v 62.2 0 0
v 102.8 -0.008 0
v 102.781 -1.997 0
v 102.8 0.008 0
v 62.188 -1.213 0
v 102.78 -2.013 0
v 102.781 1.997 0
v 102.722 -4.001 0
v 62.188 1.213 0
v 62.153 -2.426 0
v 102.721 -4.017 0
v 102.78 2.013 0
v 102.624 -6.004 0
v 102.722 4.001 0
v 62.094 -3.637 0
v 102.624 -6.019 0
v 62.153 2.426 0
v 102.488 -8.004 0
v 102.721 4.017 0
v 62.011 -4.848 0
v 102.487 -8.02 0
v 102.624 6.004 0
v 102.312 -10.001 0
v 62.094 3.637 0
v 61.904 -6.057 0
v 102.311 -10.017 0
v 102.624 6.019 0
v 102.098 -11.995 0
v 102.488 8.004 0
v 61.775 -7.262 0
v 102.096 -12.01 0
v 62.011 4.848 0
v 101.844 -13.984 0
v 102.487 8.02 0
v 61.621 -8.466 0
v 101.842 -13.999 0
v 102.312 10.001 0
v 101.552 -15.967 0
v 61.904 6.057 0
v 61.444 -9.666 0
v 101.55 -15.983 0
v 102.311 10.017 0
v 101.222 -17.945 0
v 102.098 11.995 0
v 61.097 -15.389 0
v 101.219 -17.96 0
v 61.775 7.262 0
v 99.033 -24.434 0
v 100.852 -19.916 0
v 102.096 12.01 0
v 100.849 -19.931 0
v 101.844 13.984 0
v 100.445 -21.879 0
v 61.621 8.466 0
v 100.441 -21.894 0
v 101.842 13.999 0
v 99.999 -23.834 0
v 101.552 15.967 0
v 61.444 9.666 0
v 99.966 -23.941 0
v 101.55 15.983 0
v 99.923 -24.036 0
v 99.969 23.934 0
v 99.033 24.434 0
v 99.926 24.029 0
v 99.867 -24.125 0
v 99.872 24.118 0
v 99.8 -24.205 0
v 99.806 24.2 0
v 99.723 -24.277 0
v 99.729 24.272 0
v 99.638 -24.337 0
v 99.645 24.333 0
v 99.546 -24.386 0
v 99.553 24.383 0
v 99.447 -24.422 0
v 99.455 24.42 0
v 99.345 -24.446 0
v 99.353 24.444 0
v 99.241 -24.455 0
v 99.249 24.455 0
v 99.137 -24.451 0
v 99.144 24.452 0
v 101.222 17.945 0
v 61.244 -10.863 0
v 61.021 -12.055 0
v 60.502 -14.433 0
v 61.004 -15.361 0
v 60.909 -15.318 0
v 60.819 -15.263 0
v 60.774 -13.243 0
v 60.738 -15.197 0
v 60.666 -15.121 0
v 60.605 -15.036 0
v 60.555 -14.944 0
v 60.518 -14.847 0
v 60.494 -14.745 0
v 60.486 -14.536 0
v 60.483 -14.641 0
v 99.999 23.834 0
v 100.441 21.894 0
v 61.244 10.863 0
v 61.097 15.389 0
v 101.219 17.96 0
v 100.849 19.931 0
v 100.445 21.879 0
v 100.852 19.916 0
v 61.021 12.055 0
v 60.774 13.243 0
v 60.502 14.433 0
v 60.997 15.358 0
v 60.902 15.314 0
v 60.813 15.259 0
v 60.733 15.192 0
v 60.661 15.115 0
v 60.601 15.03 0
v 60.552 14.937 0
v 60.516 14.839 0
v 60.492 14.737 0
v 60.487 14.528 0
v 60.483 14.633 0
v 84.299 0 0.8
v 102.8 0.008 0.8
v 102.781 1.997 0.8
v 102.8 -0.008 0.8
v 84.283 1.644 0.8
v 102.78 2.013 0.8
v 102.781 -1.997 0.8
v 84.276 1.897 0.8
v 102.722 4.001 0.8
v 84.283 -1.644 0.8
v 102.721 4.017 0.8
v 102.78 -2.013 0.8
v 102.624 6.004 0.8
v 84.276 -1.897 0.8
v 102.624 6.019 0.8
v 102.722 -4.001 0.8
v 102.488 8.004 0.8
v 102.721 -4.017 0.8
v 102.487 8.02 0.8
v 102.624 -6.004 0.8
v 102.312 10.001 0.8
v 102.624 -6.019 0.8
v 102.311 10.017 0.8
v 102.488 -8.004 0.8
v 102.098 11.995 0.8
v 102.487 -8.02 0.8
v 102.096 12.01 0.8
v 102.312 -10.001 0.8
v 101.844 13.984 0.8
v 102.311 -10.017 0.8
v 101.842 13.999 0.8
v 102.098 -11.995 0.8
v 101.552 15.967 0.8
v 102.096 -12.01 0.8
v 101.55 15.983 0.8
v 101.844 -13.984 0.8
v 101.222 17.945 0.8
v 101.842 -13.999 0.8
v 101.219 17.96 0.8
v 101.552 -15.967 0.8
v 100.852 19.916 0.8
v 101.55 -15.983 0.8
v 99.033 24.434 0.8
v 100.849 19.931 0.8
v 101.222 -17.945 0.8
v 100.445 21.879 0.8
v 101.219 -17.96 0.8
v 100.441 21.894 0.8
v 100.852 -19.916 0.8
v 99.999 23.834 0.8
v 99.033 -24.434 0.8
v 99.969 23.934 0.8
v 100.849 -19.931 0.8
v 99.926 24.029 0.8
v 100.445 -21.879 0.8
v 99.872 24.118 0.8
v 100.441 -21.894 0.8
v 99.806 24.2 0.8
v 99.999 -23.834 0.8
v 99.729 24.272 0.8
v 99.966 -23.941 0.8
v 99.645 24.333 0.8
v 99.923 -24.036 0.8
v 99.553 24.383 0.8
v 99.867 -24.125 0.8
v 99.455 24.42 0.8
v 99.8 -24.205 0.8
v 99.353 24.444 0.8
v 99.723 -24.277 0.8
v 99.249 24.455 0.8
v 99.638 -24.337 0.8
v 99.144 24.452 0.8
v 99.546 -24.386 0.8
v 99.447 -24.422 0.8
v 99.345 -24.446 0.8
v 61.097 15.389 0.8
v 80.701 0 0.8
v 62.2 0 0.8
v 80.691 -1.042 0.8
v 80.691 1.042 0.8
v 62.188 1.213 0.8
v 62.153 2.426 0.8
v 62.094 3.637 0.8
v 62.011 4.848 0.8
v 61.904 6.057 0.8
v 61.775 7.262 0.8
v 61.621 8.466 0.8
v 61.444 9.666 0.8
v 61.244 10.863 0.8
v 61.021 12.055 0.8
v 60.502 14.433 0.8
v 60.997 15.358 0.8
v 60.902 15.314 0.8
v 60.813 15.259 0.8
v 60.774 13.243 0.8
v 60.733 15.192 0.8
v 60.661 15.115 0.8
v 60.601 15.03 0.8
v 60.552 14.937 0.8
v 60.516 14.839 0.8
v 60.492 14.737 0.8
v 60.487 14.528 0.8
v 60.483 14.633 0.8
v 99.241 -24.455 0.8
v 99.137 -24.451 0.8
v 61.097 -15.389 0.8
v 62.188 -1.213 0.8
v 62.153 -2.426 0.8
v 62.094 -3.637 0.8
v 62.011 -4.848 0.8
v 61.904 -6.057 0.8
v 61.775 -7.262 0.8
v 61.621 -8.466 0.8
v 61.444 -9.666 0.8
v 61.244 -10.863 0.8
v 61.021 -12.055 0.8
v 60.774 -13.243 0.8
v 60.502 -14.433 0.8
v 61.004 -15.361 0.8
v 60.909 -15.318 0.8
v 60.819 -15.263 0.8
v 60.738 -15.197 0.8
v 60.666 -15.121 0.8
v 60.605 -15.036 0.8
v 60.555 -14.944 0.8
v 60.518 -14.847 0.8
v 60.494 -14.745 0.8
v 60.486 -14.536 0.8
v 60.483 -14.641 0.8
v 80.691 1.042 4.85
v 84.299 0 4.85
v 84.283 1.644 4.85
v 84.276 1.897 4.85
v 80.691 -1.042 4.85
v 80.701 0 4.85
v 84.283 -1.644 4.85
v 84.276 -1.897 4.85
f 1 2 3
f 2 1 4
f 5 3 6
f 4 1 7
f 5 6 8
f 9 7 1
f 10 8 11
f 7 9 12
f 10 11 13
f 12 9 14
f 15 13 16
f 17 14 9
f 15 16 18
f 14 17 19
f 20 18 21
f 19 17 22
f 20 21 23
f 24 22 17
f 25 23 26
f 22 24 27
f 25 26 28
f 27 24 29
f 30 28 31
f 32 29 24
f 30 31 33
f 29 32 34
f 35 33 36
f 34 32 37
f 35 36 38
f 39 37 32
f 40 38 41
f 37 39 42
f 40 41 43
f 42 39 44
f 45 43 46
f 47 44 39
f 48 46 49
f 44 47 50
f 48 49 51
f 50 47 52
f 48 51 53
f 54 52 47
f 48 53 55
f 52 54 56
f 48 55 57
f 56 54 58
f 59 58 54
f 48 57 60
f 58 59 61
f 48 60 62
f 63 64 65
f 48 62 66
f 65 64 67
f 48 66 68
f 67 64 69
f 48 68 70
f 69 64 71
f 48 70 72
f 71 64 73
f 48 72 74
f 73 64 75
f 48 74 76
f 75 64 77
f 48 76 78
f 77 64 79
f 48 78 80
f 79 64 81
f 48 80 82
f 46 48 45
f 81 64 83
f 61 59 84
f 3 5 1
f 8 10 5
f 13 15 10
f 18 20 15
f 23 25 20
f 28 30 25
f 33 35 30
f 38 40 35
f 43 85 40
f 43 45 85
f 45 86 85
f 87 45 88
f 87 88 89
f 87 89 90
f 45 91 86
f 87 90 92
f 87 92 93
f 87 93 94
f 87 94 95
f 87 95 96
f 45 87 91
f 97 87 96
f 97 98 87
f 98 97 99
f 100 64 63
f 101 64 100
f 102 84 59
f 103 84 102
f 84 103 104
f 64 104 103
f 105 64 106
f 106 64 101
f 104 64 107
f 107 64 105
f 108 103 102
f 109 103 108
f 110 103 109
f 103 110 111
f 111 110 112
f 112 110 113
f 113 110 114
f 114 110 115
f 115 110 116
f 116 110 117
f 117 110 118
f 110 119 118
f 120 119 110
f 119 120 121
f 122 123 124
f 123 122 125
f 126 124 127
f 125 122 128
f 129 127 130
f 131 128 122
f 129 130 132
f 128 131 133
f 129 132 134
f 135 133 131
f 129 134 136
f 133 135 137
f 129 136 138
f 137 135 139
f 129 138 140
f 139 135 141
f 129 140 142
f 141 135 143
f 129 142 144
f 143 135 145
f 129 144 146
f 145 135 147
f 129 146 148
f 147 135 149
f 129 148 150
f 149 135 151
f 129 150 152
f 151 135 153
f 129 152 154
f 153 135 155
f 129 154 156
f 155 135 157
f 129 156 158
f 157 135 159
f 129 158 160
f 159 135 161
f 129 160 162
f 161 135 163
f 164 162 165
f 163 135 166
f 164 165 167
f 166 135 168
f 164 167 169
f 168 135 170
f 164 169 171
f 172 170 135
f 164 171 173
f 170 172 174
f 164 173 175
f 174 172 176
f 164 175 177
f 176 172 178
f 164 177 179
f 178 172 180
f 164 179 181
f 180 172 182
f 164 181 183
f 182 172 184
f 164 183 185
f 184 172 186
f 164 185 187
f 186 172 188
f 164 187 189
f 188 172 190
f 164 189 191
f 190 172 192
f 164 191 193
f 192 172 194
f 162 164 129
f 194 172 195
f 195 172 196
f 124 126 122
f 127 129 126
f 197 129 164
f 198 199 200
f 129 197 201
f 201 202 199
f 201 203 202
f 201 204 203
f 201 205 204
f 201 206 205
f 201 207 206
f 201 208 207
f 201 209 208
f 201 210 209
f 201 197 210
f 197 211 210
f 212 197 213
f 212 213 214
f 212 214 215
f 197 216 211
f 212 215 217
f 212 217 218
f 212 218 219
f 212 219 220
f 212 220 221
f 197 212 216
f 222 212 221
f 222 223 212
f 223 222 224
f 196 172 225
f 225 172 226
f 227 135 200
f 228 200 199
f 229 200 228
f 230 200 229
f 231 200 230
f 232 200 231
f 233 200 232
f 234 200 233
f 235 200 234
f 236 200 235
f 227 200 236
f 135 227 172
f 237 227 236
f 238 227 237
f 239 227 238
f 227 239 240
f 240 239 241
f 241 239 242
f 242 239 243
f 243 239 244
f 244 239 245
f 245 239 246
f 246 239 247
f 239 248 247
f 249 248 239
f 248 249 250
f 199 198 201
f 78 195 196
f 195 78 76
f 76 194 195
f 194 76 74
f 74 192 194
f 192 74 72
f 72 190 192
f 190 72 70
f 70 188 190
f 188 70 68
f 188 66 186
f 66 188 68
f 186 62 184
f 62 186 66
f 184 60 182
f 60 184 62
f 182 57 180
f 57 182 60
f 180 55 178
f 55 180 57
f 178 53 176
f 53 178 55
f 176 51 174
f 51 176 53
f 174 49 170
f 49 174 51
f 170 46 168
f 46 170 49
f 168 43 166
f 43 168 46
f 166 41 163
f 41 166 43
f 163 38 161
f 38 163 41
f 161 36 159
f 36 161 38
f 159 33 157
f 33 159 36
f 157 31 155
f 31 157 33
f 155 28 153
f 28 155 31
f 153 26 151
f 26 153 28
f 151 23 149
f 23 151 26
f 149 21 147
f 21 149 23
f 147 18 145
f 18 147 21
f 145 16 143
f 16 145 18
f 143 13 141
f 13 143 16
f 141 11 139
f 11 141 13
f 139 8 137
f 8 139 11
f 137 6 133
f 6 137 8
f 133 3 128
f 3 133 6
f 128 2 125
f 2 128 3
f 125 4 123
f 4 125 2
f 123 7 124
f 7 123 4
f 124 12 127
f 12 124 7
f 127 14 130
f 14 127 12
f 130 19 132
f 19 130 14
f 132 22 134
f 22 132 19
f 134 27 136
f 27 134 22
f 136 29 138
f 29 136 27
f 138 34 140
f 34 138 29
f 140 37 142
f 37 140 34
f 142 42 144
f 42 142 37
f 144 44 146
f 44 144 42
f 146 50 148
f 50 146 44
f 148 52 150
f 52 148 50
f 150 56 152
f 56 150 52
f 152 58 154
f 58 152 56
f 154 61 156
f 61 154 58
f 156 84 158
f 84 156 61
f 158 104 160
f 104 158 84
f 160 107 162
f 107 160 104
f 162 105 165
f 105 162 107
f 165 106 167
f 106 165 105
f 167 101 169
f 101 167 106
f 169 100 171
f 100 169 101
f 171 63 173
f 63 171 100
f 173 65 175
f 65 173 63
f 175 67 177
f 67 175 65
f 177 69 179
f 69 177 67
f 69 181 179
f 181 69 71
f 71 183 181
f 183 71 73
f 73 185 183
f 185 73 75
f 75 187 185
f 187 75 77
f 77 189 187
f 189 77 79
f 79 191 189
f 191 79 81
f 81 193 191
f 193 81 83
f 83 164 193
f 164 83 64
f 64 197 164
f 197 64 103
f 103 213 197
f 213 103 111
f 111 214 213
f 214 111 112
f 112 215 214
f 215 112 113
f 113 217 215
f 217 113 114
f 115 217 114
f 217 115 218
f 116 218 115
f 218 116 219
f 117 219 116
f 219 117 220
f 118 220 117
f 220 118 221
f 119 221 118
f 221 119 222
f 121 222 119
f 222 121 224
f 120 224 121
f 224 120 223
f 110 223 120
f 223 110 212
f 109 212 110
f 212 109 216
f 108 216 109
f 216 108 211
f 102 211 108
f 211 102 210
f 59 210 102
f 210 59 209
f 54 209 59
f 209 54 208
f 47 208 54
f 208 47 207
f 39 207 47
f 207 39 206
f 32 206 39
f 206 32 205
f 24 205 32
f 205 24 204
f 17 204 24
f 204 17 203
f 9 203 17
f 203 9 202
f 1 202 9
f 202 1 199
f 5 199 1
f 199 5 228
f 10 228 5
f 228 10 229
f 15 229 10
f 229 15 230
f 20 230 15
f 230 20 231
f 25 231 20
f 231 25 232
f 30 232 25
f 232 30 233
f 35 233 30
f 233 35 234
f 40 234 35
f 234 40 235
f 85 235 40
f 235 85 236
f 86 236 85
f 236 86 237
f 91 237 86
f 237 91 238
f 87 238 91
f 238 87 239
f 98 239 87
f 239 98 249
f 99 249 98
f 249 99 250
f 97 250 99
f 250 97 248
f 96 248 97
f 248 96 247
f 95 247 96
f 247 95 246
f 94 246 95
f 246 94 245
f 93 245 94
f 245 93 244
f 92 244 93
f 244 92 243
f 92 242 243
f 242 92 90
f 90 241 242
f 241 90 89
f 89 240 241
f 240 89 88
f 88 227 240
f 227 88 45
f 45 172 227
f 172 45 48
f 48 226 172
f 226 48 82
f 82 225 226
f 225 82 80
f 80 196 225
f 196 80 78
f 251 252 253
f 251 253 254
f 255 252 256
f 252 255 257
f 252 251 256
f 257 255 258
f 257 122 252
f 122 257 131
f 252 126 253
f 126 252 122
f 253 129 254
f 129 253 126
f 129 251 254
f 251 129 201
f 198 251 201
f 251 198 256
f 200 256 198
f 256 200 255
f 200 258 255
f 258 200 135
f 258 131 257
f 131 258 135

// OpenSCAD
// file: parameters.scad
// =============================================================================
// Gen-CB — nightly 2026-10-13 (physics_scorer, honest magpylib watts)
// Wire-saver stator for the Gen-CA rotors: only 4.05 mm of copper (9 layers), so the magnet faces are 6.65 mm apart and peak Bz at the copper reaches ≈0.70 T. It needs ≈300 m of wire (≈80 m less than Gen-CA, ≈75 m less than Gen-BX) and still out-scores the Gen-BX champion; it shares every rotor part, the steel, the frame rods and the bearing bridges with Gen-CA, so the two stators swap on the same machine.
// Clocking 0 deg (magnets N facing S) + D-flat keyed bore + index notch + flip-symmetric hole map.
// Windable 2-piece bobbin; turns = physics_scorer turns_fit; copper only between flanges.
// Steel back-iron: 2× Ø194 × 4.76 mm (3/16") mild-steel discs (steel_backiron_disc.dxf); magnets sit ON the steel
// (through-pockets) -> score with --back-iron. Night 2026-10-13.
// =============================================================================
topology            = "dual_rotor";

// --- Wire / winding (physics_scorer winding-fit) -------------------------------
wire_awg            = 26;
wire_od             = 0.45;     // insulated OD mm (bare 0.405)
fill_realistic      = 0.65;     // insulated-wire area / window (DENSE layered wind with a jig; scorer cap 0.65)
turns               = 292;       // = physics_scorer turns_fit (do NOT raise)
coil_former_type    = "bobbin";
coil_core_inset     = 17.70;     // radial copper build: hub = copper boundary inset by this
wind_build_axial    = 0.0;      // nothing proud of the flanges
wind_build_radial   = 0.0;

// --- Bobbin (base + lid) ---------------------------------------------------------
coil_id_r           = 63.00;    // copper boundary sector
coil_od_r           = 102.00;
span_deg            = 26.82;    // = pitch - 2*asin((wall+0.85)/coil_id_r) -> >=1.2 mm stator web
former_web          = 4.05;     // copper height between flanges (TALL copper: steel keeps Bz up)
flange_t            = 0.80;     // >= 0.8 mm FDM wall rule (tall winds push on the flanges)
wall                = 0.80;     // flange lip beyond copper
former_bare_h       = former_web + 2 * flange_t;
coil_envelope_h     = former_bare_h + 2 * wind_build_axial;
tab_w               = 7.0;
tab_len             = 7.0;
tab_h               = former_bare_h / 2;
pin_d               = 1.9;      // 1.75 mm filament locating pin
coil_mount_r        = coil_od_r + 0.2 + 4.0;
lead_y              = 1.6;
lead_slot_w         = 0.9;
lead_groove_d       = 0.6;

// --- Gap -------------------------------------------------------------------------
run_clear           = 0.50;     // rotor face -> flange
gap_spacer_h        = run_clear + wind_build_axial;
m2m                 = coil_envelope_h + 2 * run_clear;   // rotor face to rotor face (= gap_sleeve length)

// --- Stator ----------------------------------------------------------------------
coil_stations       = 12;
bay_clear           = 0.35;     // 0.35 mm: bobbin BASES print IN PLACE inside the stator bays (print-in-place gap), then pop out
stator_thick        = former_bare_h;                        // bobbins flush both faces
stator_od           = 225.0;
shaft_clear_stator  = 14.0;     // stator is static; gap sleeve OD 12 spins inside
stator_ir           = 57.85;    // ANNULAR stator: open centre (nested one-plate pack); inner rim 4.0 mm

// --- Rotor(s) --------------------------------------------------------------------
magnet_Br           = 1.43;     // N52
magnet_d_large      = 20.0;
magnet_h_large      = 5.0;      // one O20x5 per pocket
magnet_h_small      = 5.0;      // unused: no O5 pockets in this kit
halbach_magnetisation = "none";  // NO O5 assist magnets in this kit (scan: they lower the 4-pole score)
rotor_b_same_axis   = true;     // same-index magnets share one axis: N faces S across the gap
large_pocket_d      = 20.3;
small_pocket_d      = 5.3;
pocket_h            = 5.00;     // THROUGH the carrier: magnet back face sits on the steel disc (FLUSH seat: carrier = magnet height, magnet face level with the rotor face)
large_n             = 8;
R_large             = 84.0;
small_r_list        = [];       // no O5 pockets
carrier_od          = 194.0;
ring_ir             = 70.85;    // RING rotor: PLA magnet ring r ring_ir..carrier_od/2 (steel disc = structural rotor)
hub_flange_od       = 74.0;     // separate rotor_hub flange (inside the ring, flush with the ring face)
csk_d               = 6.6;      // M3 countersunk head pocket (ISO 10642 head 6.0 nominal) on the stator face
csk_depth           = 1.55;     // = (csk_d - m3_clear) / 2: 90 deg cone; head sits 0.3 mm below the face
n_seg               = 8;        // magnet-carrier ARCS per rotor (segmented carrier)
seg_deg             = 360 / n_seg;
seg_start           = -22.5;   // arc edge angle (between pocket 0 and its clamp bolt)
seg_kerf_deg        = 0.4;      // gap between neighbouring arcs on the steel
carrier_thick       = pocket_h;
hub_h               = 12.0;     // > steel_t + insert: radial set-screw clears the steel
hub_od              = 24.0;     // slim hub so the M4 brace rods fit at R~18 inside the coil ring
hub_insert_d        = 4.0;      // M3 heat-set insert, radial, bears on the D-flat
rotor_b_offset_deg  = 0.0;      // CLOCKING: magnets directly opposite
shaft_key           = "dflat";
dflat_depth         = 0.5;      // 8 mm shaft with 0.5 mm flat (7.5 across flat)
index_notch_d       = 3.0;

// --- Steel back-iron (buyable laser-cut) -------------------------------------------
steel_t             = 4.76;      // mild steel thickness (image method ignores it; sized from steel_flux.py so the return path stays well below saturation)
steel_center_hole   = 26.0;     // slips over the rotor hub (OD 24)
steel_od            = carrier_od;   // steel disc OD = rotor carrier OD

// --- Modular MAX interface ----------------------------------------------------------
shaft_bore          = 8.35;
dflat_x             = 4.0 - dflat_depth + (shaft_bore - 8.0) / 2;
bearing_d           = 21.85;
bearing_h           = 7.2;
m3_clear            = 3.5;
bolt_r_inner        = 30.0;     // M3 steel-disc clamp bolts (inside the magnet ring)
bolt_n_inner        = 4;
bolt_inner_angles   = [0, 90, 180, 270];
bolt_r_outer        = 84.0;     // second M3 steel-disc clamp ring
bolt_outer_angles   = [22.5, 67.5, 112.5, 157.5, 202.5, 247.5, 292.5, 337.5];
flange_bolt_r       = 107.5;     // frame rods: OUTSIDE the rotor OD (rotors spin inside them)
flange_bolt_n       = 4;
flange_bolt_offset  = 45.00;    // between coil stations -> never cuts a lead groove/tab
brace_r             = 18.0;
brace_d             = 4.3;      // temporary M4 jack rods (assembly only)
brace_n             = 4;
brace_angles        = [45, 135, 225, 315];          // flip-symmetric

spacer_pad_od       = 14.0;
spacer_pad_id       = m3_clear;
endbell_od          = 225.0;
endbell_thick       = 8.0;
endbell_shaft_clear = 10.0;
collar_h            = 10.0;
standoff_od         = 9.0;
frame_standoff_h    = run_clear + carrier_thick + hub_h + collar_h + 2.0;
sleeve_od           = 12.0;
plate_max_mm        = 410;

$fn = 64;
// main file
// Gen-CB — bobbin BASE (bottom flange + hub). Print x12, flange down. Wind 26 AWG x 292 t around
// the hub with the LID glued on (coil_lid.stl). Copper lives ONLY between the flanges (no proud winds).
include <parameters.scad>;
$fn = 48;
module sector_2d(r_in, r_out, ang) {
    polygon([
        for (a = [-ang/2 : ang/24 : ang/2]) [r_in*cos(a), r_in*sin(a)],
        for (a = [ang/2 : -ang/24 : -ang/2]) [r_out*cos(a), r_out*sin(a)]
    ]);
}
module footprint_2d() { offset(r=wall) sector_2d(coil_id_r, coil_od_r, span_deg); }
module hub_2d()       { offset(delta=-coil_core_inset) sector_2d(coil_id_r, coil_od_r, span_deg); }

union() {
    linear_extrude(flange_t) footprint_2d();
    translate([0, 0, flange_t - 0.01]) linear_extrude(former_web + 0.01) hub_2d();
}
